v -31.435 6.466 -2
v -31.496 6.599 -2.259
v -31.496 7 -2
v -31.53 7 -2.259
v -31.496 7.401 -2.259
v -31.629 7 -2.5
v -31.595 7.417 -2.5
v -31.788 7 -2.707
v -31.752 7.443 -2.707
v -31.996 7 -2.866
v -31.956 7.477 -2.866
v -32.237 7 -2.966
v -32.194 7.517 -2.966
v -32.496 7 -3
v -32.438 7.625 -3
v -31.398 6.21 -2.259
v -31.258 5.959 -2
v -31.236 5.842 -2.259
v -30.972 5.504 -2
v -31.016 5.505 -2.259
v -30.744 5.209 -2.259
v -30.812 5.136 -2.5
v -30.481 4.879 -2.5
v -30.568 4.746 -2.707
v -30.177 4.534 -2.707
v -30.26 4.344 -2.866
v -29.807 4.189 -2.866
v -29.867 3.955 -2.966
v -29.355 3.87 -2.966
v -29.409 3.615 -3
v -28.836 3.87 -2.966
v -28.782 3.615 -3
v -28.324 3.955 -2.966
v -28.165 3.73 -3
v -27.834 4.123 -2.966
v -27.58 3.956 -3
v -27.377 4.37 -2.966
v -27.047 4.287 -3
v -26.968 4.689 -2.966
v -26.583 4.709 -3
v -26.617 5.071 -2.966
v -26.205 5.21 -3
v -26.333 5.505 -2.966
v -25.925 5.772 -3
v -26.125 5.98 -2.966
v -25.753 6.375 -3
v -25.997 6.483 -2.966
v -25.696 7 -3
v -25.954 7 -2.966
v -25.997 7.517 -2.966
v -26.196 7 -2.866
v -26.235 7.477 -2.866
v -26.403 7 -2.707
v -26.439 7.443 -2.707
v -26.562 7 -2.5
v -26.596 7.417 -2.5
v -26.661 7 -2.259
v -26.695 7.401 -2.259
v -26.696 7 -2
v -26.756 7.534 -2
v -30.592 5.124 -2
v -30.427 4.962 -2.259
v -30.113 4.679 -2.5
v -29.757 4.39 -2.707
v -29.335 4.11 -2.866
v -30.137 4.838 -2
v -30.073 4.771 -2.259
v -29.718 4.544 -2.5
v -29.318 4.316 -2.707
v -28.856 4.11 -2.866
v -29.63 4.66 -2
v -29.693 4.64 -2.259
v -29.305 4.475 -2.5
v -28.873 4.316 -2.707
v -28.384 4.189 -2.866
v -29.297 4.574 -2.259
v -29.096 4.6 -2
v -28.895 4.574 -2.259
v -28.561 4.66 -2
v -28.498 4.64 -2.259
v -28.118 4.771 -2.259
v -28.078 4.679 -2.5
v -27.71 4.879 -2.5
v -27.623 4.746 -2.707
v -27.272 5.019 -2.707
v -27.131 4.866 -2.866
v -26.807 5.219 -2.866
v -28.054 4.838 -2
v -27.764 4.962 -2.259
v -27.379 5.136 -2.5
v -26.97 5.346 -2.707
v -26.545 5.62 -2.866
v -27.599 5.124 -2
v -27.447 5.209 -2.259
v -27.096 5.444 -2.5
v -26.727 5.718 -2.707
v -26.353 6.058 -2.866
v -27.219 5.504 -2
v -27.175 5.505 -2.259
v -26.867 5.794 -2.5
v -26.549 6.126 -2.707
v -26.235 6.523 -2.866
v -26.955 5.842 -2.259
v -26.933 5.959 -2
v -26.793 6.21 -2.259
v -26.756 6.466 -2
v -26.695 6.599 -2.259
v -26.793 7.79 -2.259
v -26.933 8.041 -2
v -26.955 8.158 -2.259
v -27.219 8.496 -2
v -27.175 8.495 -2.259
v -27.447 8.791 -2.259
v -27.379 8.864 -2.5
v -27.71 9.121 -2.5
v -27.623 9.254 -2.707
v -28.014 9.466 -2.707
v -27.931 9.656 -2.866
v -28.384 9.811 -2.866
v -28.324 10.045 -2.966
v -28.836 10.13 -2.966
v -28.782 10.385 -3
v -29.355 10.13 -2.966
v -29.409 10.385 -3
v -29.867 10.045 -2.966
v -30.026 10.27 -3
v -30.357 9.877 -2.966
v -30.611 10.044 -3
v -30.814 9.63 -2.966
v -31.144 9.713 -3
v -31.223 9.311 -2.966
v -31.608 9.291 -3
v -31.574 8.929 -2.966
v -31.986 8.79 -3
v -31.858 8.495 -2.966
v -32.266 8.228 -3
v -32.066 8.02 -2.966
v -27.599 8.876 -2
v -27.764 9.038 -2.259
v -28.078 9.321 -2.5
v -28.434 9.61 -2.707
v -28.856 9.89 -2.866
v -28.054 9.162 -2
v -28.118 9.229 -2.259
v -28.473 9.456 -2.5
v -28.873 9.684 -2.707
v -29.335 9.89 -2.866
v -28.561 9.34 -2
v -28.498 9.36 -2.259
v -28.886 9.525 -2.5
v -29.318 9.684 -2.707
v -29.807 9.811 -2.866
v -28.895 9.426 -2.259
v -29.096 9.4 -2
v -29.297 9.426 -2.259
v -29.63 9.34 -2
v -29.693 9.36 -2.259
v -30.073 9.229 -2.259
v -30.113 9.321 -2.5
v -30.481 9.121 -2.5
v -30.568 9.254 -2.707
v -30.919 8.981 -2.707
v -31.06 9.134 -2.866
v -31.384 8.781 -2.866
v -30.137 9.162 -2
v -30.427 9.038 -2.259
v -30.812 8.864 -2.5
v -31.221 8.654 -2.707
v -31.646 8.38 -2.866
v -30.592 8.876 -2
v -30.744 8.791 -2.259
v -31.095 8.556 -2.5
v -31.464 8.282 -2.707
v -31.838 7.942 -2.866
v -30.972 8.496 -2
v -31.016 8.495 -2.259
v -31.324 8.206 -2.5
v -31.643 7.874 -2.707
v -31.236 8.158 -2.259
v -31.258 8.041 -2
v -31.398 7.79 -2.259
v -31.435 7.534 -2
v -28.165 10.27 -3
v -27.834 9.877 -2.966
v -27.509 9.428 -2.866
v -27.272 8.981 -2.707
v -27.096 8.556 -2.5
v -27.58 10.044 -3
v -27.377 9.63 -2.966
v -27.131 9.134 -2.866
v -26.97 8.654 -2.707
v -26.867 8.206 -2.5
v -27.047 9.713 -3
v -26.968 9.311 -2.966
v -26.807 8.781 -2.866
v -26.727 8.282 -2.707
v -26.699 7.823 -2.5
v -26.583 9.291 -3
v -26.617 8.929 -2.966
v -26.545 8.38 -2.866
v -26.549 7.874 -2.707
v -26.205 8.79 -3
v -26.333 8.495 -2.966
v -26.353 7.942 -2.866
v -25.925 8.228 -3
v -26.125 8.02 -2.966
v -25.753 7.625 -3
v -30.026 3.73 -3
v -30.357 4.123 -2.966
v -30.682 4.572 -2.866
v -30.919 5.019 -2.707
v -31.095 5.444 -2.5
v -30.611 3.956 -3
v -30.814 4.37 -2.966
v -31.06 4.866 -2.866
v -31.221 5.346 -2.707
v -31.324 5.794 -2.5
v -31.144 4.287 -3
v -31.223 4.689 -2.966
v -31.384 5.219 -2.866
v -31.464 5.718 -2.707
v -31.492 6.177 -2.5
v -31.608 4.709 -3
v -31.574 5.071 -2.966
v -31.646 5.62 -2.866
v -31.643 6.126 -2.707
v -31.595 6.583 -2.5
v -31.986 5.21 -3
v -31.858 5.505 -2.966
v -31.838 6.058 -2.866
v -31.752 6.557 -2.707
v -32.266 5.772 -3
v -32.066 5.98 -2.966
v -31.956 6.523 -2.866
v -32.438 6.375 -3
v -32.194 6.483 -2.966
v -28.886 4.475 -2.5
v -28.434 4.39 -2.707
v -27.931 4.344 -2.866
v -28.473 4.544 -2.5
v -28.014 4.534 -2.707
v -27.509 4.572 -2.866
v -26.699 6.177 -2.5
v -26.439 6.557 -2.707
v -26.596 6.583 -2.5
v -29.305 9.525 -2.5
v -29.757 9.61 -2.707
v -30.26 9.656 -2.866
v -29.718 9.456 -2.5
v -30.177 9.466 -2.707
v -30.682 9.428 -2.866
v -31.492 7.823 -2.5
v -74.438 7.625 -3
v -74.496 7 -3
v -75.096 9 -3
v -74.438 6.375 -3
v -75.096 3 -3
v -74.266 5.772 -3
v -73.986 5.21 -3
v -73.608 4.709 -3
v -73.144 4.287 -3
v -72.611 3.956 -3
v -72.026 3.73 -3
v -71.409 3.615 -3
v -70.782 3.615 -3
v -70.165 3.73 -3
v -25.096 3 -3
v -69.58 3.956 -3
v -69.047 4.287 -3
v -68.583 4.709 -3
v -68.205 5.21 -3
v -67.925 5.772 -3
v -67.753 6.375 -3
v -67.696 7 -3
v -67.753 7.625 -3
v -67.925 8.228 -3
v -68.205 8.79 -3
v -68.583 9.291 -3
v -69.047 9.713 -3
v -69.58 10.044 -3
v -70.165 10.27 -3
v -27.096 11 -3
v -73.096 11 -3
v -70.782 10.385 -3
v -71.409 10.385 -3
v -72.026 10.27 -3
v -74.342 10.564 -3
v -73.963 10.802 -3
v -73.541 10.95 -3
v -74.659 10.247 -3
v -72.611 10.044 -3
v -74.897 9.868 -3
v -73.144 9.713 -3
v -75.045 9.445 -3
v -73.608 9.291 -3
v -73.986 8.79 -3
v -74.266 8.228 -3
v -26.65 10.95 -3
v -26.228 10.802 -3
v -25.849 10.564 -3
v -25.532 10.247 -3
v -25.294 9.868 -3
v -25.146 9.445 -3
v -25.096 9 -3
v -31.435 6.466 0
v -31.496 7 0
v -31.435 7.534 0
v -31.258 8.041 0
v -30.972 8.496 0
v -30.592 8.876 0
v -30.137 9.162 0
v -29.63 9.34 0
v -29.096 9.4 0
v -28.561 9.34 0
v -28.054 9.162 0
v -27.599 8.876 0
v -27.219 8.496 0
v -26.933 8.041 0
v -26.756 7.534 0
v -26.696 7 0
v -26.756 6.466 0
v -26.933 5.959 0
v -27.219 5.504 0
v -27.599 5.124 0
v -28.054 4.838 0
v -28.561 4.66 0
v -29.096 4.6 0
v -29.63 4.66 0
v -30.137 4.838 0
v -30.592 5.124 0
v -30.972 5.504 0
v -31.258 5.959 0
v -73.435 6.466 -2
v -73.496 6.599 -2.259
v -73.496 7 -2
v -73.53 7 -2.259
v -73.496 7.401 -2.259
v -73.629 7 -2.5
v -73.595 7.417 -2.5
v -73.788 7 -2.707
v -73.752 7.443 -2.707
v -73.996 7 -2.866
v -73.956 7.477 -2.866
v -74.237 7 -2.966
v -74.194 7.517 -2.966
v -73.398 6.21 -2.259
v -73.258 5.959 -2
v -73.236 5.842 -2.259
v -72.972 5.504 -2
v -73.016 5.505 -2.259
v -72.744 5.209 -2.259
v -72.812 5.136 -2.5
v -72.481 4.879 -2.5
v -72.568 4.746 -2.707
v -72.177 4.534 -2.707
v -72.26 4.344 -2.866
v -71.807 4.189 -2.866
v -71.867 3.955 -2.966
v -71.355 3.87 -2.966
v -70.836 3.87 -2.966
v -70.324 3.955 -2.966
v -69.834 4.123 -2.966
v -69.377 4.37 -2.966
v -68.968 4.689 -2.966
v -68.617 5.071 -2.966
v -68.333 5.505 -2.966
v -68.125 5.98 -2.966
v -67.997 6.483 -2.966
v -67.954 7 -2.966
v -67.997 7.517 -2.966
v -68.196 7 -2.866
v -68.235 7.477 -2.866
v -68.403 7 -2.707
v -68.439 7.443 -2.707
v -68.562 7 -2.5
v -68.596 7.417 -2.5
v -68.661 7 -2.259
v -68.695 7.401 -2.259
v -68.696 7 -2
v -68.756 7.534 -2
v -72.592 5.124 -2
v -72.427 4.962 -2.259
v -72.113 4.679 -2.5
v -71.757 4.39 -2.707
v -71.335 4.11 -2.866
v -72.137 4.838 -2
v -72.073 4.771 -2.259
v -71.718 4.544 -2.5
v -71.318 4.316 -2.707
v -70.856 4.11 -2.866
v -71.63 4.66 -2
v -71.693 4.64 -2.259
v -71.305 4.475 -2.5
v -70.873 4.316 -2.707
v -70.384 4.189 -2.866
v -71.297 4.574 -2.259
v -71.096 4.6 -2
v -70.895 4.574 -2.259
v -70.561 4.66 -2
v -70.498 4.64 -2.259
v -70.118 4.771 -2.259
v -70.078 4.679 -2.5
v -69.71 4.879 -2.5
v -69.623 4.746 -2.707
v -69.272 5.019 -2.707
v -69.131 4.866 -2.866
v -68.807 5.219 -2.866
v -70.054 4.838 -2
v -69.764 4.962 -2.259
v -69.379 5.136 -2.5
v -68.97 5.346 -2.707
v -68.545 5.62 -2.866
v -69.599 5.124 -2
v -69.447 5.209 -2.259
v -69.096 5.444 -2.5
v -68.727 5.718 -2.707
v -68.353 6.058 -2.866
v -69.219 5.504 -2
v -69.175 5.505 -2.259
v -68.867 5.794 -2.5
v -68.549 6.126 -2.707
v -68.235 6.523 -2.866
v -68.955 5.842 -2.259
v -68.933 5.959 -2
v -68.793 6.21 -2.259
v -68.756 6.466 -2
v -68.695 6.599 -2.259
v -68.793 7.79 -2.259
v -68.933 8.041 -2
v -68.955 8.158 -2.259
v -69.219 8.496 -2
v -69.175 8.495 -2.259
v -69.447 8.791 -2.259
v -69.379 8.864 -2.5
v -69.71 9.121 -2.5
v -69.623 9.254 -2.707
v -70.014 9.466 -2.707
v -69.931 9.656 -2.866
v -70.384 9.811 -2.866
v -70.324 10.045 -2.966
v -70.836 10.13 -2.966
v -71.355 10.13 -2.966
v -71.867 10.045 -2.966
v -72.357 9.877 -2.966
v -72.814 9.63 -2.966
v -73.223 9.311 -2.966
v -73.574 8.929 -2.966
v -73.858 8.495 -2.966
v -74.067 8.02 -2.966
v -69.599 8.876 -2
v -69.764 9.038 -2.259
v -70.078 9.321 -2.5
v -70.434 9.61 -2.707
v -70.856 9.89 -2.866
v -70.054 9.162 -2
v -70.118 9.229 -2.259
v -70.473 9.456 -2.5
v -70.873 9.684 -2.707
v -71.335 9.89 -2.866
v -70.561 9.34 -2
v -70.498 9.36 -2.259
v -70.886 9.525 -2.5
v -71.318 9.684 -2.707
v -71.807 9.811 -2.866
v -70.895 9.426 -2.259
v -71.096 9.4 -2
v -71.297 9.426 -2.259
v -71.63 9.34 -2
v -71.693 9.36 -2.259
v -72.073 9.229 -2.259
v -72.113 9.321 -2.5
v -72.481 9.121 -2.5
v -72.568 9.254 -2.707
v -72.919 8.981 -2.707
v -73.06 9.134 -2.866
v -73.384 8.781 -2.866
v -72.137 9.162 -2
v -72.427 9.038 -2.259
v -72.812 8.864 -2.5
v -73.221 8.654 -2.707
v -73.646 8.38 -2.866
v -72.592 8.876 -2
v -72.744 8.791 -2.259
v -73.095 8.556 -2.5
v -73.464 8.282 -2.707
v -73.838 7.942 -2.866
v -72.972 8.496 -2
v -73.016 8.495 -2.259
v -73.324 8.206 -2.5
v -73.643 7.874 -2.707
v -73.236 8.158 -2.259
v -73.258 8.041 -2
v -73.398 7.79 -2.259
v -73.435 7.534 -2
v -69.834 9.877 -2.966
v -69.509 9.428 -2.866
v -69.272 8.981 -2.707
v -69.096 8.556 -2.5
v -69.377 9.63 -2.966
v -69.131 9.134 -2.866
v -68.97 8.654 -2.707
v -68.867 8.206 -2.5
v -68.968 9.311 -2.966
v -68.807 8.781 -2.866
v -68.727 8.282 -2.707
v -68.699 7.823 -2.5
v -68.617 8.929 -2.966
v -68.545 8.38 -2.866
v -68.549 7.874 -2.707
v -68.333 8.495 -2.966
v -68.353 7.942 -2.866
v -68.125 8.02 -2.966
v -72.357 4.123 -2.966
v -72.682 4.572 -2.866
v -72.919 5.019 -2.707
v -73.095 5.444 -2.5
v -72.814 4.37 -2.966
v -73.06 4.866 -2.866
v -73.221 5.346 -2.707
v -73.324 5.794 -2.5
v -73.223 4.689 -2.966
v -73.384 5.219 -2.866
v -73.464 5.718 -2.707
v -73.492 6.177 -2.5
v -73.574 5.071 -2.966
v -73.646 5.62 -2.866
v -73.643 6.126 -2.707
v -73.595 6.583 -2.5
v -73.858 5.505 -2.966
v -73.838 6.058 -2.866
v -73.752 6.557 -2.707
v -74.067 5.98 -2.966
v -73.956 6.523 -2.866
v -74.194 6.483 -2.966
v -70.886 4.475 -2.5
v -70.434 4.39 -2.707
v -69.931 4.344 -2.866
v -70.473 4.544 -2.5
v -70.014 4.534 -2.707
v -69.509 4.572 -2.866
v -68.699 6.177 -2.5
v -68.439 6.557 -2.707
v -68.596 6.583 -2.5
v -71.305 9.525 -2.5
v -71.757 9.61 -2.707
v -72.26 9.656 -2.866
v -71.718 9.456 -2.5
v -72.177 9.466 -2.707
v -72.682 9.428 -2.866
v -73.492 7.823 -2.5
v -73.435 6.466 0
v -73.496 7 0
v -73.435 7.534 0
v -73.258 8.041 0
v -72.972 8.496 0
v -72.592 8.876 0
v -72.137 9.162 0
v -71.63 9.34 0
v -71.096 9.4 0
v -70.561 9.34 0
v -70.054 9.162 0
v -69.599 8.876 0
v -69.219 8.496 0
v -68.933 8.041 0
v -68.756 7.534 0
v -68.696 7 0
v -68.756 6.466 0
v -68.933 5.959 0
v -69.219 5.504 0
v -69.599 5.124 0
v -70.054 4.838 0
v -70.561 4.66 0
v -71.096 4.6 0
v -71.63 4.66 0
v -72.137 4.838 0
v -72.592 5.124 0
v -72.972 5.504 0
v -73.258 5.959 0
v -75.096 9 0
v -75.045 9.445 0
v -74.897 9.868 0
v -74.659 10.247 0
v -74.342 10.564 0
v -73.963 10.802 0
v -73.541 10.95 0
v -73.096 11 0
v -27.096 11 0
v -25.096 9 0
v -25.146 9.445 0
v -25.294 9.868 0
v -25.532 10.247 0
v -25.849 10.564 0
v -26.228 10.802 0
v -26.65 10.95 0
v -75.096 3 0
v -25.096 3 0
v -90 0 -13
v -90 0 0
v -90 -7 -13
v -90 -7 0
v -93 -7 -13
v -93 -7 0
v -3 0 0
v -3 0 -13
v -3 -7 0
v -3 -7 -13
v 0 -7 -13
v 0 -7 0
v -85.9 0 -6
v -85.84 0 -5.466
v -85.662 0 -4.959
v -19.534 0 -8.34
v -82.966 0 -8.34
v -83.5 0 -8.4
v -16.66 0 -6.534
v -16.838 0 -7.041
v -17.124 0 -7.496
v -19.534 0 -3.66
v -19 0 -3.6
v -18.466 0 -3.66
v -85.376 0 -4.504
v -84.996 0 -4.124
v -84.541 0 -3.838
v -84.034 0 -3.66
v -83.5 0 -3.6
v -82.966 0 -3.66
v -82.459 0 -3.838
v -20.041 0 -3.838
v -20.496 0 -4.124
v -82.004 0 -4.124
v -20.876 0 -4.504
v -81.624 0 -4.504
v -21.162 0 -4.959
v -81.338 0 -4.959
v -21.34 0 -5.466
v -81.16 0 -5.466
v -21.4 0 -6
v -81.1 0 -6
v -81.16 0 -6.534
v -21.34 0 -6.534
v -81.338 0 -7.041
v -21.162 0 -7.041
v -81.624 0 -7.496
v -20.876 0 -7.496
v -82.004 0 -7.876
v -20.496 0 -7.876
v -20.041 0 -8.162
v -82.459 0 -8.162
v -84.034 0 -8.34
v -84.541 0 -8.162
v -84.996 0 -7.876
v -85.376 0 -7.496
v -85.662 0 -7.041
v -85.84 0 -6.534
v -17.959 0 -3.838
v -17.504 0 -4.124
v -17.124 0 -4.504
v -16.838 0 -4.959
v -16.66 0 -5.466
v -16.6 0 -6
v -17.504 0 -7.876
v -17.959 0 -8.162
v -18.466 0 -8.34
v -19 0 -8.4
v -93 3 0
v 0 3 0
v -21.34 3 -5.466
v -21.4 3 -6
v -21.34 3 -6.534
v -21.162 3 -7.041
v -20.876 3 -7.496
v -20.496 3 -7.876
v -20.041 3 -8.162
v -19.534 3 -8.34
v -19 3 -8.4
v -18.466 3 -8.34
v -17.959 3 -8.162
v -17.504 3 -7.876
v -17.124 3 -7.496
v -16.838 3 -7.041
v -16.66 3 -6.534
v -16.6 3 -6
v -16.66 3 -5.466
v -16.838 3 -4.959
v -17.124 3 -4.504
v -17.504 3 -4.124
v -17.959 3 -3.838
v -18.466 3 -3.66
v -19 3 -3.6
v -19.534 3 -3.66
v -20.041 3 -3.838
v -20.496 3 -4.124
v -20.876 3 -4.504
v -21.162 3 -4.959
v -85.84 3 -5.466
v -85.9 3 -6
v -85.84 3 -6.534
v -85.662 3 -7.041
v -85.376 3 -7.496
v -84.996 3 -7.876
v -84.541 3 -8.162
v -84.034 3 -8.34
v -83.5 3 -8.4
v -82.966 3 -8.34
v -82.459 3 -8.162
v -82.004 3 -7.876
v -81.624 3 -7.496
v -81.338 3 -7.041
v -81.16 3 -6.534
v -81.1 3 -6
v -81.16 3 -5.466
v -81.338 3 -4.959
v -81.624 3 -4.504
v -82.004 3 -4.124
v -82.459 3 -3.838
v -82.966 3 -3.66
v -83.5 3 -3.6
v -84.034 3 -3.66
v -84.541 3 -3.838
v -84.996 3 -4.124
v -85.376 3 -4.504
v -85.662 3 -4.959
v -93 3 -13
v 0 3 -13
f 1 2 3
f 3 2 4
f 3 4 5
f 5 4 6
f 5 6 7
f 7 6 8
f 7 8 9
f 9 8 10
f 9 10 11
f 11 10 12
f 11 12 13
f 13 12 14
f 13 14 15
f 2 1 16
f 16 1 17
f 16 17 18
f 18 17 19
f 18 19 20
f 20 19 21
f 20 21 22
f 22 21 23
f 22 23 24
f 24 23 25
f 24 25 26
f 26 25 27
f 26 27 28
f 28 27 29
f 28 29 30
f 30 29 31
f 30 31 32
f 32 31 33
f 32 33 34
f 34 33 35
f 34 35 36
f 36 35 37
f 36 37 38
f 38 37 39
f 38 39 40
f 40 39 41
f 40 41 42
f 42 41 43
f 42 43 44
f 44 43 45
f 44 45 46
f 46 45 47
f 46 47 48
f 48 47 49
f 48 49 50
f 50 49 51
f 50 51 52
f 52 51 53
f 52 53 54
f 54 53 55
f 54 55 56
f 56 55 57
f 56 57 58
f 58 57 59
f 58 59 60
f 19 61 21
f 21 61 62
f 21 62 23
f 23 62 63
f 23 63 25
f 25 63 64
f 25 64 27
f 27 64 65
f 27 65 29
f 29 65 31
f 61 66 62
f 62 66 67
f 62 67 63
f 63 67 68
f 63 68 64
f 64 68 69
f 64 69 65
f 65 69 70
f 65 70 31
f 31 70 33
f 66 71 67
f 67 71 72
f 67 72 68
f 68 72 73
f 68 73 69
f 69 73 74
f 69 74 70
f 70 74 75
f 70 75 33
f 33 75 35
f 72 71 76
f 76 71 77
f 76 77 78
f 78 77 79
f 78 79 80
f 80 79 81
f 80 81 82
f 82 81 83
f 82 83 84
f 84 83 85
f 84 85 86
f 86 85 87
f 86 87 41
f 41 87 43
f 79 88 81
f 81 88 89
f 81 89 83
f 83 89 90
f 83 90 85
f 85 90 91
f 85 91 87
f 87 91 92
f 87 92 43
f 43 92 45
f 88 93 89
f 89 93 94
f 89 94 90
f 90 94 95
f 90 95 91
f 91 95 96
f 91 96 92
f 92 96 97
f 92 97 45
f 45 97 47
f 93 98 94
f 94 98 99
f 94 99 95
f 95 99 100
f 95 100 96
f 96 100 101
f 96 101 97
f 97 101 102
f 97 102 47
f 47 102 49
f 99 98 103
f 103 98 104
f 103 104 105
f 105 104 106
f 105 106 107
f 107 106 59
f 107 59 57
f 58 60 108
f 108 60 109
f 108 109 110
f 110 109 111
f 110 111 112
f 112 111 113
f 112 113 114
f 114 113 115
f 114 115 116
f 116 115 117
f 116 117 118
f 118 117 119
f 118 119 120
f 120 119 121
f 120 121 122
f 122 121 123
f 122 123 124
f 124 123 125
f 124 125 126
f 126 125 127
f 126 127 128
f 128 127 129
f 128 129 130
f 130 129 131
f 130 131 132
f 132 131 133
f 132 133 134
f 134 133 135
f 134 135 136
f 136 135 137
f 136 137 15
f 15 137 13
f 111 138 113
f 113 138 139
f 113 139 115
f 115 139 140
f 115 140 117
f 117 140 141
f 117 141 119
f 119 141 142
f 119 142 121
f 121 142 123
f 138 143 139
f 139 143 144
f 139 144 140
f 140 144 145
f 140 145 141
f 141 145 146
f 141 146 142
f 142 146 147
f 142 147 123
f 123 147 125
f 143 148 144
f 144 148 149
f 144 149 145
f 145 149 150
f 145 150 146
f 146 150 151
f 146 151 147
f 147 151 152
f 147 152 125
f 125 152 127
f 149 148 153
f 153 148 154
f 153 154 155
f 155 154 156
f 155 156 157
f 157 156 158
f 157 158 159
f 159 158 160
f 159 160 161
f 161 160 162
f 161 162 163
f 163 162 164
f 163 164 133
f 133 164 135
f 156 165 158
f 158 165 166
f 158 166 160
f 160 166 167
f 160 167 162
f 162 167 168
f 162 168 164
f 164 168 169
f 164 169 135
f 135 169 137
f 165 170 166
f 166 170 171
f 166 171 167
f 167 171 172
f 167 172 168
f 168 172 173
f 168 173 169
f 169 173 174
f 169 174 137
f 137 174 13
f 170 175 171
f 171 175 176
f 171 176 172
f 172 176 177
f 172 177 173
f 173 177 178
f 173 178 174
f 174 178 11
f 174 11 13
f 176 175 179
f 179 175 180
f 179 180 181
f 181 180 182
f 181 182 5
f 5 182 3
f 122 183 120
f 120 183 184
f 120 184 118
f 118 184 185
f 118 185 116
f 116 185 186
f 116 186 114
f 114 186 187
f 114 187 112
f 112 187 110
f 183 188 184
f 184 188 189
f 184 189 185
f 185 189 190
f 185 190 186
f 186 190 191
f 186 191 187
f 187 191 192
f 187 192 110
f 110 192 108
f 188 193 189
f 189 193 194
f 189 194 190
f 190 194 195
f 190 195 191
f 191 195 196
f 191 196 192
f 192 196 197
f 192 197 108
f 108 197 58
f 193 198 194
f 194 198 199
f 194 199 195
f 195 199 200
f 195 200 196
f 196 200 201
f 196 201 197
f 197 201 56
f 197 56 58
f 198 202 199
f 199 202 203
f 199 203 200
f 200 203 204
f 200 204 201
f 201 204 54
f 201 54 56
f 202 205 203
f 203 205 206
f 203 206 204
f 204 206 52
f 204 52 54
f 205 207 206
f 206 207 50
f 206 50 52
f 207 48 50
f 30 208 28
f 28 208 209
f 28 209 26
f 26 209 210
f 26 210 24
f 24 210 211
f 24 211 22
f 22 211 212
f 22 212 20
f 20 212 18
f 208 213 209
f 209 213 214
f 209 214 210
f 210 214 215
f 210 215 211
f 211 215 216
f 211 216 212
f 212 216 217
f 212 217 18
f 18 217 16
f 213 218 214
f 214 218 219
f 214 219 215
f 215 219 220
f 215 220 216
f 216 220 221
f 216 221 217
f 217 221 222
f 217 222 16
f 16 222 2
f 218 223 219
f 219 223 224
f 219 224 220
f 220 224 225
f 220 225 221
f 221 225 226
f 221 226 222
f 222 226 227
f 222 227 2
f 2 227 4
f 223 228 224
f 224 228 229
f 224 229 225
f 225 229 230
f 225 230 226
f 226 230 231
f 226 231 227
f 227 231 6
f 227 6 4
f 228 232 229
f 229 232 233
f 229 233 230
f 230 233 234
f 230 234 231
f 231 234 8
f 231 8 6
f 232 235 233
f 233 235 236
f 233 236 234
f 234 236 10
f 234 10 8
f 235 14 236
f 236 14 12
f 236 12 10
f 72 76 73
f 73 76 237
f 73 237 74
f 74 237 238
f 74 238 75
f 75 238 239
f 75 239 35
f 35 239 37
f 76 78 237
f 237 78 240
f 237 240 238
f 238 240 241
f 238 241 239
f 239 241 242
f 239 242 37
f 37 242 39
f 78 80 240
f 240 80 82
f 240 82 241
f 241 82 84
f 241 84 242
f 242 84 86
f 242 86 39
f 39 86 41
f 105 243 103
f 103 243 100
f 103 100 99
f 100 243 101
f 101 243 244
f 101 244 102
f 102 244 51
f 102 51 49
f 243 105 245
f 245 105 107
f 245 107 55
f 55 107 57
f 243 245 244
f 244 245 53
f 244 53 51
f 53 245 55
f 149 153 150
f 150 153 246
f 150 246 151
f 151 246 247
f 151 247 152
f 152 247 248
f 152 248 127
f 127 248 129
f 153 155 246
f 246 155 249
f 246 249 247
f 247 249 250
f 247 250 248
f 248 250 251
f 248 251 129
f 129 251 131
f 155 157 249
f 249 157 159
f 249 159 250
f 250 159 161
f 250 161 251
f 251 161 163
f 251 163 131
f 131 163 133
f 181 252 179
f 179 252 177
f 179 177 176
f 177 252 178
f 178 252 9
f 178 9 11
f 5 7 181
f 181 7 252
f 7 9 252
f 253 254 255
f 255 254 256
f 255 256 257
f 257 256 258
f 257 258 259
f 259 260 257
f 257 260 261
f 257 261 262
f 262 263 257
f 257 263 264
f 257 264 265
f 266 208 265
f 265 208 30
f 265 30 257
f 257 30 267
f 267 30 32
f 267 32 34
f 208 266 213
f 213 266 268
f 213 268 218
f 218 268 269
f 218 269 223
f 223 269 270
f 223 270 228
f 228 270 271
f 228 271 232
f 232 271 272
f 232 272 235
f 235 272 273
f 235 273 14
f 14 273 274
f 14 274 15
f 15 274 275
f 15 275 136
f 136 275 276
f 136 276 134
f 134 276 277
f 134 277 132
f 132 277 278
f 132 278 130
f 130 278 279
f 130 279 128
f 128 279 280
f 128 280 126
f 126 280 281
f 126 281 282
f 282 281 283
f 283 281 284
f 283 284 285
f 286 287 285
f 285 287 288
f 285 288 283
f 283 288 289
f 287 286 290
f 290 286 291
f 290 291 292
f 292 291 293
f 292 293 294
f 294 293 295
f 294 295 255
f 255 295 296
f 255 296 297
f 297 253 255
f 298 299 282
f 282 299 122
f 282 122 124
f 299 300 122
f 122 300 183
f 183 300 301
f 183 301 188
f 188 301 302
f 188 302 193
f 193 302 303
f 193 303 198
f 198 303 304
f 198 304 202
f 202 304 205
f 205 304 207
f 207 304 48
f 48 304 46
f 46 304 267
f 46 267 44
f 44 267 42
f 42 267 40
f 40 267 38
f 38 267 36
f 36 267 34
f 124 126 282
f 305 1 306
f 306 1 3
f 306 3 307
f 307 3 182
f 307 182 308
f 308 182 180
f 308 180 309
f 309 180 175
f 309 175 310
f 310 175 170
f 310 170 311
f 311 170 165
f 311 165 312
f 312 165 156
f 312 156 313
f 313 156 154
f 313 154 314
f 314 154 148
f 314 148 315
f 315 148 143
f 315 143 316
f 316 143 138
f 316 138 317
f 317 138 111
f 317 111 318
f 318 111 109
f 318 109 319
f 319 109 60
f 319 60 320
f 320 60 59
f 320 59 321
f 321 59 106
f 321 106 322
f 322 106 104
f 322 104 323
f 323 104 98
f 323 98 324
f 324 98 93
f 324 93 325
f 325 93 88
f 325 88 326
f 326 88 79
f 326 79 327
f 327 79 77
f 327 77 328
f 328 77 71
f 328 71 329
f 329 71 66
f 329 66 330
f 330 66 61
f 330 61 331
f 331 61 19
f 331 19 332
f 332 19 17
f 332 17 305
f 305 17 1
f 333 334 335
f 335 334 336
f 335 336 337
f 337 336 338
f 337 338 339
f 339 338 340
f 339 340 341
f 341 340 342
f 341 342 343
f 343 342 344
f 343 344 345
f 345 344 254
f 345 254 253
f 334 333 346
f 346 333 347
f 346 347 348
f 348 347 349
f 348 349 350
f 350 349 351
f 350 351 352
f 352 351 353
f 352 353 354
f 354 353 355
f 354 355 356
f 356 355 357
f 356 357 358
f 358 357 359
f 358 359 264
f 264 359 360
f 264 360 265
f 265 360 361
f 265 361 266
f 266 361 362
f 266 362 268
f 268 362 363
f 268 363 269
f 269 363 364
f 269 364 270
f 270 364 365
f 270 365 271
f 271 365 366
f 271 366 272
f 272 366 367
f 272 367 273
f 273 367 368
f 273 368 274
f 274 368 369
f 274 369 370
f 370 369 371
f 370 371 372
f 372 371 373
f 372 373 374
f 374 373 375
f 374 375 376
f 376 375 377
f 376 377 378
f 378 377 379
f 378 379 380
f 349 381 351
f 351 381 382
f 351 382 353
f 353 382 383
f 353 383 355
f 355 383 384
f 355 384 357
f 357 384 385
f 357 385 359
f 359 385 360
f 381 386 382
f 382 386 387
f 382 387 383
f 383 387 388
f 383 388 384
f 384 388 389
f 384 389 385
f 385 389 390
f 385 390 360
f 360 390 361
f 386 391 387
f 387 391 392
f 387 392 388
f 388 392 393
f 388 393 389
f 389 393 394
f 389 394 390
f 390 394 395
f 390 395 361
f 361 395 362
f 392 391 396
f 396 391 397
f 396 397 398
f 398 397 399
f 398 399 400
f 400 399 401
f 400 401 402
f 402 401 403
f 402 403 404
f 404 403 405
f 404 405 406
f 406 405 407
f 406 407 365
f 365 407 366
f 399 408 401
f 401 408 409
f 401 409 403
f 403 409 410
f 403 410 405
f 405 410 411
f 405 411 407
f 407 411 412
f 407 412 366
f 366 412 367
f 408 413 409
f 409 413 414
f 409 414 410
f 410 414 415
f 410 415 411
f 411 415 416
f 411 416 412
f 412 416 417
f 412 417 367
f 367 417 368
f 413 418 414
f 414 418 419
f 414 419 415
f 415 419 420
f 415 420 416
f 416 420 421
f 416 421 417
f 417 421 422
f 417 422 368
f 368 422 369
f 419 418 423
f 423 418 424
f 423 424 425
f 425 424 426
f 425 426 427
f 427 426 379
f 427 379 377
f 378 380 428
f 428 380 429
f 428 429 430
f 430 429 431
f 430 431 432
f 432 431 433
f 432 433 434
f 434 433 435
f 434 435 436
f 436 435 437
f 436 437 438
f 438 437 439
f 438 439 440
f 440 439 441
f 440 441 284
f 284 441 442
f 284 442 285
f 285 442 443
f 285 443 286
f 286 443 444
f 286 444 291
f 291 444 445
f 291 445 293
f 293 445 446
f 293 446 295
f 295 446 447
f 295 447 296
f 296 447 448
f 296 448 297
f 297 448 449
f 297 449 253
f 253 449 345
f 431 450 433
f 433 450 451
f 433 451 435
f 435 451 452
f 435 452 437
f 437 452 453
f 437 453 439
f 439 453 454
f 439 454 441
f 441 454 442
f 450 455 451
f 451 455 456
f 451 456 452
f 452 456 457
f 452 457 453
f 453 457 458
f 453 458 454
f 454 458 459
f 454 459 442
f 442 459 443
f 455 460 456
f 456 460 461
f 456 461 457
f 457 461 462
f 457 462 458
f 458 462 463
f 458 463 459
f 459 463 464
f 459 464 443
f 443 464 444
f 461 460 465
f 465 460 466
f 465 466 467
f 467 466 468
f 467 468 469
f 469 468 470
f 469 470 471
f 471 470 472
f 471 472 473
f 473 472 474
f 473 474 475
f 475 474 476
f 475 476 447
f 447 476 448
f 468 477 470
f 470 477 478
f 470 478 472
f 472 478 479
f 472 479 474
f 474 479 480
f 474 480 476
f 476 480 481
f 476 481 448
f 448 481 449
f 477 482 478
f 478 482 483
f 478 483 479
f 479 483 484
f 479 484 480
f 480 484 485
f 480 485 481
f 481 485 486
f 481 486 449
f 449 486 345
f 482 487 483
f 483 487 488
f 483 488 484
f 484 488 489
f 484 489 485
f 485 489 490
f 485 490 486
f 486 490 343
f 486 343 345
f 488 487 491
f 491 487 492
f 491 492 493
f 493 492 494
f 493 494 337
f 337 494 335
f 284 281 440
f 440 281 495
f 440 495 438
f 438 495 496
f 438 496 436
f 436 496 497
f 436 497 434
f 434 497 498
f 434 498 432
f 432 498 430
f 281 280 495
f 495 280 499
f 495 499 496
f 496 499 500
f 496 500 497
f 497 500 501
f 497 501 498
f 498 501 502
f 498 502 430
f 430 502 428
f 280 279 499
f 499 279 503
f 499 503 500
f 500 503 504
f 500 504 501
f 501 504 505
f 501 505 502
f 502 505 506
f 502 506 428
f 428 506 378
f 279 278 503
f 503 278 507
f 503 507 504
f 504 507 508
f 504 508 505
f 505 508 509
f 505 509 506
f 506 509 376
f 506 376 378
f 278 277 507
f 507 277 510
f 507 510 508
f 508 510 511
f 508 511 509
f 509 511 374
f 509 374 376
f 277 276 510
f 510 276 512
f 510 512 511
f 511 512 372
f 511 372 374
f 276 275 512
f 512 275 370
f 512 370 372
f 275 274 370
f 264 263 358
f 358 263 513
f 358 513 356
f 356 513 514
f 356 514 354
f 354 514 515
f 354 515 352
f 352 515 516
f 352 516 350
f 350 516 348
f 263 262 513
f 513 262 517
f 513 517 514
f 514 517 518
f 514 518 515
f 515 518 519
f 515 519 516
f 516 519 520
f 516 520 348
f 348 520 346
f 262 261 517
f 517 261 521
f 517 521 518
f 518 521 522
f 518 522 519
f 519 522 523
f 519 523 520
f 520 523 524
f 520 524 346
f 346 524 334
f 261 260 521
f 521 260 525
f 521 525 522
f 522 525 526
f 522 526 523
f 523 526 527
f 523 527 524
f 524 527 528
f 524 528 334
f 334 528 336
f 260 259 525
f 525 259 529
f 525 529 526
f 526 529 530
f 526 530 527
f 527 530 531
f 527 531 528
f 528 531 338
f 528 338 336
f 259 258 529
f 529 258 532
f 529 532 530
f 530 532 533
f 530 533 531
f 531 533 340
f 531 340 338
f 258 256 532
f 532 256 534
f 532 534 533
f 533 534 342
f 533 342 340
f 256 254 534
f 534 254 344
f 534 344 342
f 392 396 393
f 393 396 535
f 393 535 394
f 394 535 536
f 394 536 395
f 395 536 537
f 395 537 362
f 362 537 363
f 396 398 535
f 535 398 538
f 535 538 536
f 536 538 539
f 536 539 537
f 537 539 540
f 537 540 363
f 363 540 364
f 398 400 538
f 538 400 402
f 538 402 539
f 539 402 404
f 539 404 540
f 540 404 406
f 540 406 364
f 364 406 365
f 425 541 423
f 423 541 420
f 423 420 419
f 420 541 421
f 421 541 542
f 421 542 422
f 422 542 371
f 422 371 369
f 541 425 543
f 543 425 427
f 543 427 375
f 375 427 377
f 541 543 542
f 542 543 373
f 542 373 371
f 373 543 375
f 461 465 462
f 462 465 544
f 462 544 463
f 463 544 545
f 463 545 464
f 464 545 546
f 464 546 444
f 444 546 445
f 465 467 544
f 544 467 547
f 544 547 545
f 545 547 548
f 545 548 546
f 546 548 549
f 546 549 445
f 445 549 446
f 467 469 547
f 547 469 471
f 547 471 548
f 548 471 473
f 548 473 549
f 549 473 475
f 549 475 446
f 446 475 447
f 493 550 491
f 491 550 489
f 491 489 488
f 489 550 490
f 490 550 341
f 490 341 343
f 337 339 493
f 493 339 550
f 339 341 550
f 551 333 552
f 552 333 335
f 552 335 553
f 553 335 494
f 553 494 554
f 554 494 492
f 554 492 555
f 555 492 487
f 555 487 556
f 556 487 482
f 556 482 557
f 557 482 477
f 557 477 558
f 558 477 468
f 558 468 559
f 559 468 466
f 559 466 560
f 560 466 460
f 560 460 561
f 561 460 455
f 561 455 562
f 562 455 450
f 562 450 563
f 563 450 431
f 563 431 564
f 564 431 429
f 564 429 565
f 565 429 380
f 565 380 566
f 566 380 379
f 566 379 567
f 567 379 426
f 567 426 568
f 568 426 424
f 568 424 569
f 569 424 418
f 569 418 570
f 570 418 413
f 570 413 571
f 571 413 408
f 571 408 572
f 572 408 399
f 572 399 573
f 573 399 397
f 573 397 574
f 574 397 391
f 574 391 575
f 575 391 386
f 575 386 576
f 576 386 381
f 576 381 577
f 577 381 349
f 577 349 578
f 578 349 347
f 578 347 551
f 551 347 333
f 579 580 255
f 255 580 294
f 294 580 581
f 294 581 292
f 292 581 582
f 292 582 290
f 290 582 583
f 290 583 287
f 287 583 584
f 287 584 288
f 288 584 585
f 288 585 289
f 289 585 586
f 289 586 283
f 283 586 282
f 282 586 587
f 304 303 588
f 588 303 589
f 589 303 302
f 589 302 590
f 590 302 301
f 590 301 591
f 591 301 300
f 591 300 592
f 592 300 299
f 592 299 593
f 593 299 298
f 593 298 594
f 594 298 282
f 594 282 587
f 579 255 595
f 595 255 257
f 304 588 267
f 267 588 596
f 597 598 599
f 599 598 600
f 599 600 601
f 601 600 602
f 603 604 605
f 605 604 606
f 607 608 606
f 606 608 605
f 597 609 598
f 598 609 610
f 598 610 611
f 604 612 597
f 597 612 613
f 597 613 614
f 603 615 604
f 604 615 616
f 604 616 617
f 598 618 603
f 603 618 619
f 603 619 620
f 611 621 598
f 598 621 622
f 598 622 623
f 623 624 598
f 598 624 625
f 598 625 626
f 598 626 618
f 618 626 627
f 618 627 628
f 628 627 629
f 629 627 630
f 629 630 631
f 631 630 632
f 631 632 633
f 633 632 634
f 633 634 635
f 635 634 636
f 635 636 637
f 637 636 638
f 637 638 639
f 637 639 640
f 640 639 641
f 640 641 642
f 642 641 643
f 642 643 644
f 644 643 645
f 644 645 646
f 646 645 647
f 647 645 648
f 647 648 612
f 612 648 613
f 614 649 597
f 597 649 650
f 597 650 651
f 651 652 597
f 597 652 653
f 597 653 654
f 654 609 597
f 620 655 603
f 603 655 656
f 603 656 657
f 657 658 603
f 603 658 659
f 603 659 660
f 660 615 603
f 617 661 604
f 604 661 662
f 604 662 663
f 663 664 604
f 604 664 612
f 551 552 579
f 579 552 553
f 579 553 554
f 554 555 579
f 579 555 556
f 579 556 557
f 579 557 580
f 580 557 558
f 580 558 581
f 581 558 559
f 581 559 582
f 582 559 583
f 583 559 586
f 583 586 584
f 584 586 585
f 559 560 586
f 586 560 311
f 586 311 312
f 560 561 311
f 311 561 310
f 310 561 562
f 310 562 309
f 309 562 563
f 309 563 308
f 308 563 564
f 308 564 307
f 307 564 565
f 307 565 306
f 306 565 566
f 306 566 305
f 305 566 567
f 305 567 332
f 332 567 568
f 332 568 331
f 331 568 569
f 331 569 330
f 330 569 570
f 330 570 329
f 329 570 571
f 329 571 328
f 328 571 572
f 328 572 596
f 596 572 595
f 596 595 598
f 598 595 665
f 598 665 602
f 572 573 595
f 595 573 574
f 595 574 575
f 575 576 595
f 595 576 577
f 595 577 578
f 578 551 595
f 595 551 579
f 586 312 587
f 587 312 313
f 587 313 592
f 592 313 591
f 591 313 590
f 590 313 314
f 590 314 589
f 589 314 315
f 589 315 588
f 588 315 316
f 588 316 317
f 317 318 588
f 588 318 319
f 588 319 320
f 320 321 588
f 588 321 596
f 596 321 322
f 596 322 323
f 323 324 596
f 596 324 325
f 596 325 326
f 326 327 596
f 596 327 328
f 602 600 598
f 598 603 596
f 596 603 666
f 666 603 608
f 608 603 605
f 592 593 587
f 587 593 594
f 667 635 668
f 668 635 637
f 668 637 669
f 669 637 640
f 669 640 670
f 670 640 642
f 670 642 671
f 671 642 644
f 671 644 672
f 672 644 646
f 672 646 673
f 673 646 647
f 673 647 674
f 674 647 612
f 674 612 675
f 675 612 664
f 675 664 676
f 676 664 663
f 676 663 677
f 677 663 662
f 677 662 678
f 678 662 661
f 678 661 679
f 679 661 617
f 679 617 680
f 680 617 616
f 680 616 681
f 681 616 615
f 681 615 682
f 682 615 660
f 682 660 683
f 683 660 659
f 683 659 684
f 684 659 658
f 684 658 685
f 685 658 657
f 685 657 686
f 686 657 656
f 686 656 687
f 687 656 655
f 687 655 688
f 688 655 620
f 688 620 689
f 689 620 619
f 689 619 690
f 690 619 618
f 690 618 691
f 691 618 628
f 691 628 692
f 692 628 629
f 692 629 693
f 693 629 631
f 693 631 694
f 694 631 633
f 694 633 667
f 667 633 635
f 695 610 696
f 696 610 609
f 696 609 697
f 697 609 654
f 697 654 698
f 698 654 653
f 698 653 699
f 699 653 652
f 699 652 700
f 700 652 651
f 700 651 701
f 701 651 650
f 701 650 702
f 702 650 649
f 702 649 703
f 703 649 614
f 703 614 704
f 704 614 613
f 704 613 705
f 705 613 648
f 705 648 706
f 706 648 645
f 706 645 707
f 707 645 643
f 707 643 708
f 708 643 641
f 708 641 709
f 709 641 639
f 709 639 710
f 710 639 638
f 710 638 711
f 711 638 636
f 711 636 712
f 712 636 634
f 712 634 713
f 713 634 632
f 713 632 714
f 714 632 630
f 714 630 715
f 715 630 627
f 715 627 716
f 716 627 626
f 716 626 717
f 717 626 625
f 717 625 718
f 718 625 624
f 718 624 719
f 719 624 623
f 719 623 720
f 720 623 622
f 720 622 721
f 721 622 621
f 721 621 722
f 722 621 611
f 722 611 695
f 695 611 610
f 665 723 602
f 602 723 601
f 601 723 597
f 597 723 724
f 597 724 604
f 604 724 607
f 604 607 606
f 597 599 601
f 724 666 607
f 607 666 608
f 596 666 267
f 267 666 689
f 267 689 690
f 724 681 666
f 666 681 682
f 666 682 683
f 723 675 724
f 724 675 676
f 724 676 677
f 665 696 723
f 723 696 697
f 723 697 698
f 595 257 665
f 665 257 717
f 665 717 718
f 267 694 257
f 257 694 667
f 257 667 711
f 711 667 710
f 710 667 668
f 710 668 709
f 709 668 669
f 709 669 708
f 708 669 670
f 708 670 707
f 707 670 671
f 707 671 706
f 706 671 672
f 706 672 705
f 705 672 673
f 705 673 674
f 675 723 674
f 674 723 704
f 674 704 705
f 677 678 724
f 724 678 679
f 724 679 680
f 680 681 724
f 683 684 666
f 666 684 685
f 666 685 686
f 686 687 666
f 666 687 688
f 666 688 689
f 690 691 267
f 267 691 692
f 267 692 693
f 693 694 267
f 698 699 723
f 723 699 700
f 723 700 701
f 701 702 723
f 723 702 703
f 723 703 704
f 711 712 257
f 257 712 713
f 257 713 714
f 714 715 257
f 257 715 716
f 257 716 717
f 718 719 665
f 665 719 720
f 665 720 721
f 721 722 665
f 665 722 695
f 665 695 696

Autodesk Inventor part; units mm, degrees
ref_plane "YZ Plane" through (0, 0, 0) normal (1, 0, 0) x (0, 1, 0)
ref_plane "XZ Plane" through (0, 0, 0) normal (0, 1, 0) x (-1, 0, 0)
ref_plane "XY Plane" through (0, 0, 0) normal (0, 0, 1) x (1, 0, 0)
sketch "Sketch1" plane through (0, 0, 0) normal (0, 1, 0) x (-1, 0, 0)
  line L0 (0, 0) -> (93, 0)
  line L1 (93, 0) -> (93, -13)
  line L2 (93, -13) -> (0, -13)
  line L3 (0, -13) -> (0, 0)
  circle A0 centre (83.5, -6) radius 2.4
  circle A1 centre (19, -6) radius 2.4
  dimension "d0" = 93
  dimension "d1" = 13
  dimension "d2" = 4.8
  dimension "d3" = 4.8
  dimension "d4" = 6
  dimension "d5" = 6
  dimension "d6" = 19
  dimension "d7" = 9.5
extrude "Extrusion1" add sketch "Sketch1" along normal blind 3
sketch "Sketch2" plane through (0, 3, 0) normal (0, 1, 0) x (1, 0, 0)
  line L0 (-93, 0) -> (0, 0) projected
  line L1 (0, 13) -> (-93, 13) projected
  line L2 (0, 0) -> (-3, 0)
  line L3 (-3, 0) -> (-3, 13)
  line L4 (-3, 13) -> (0, 13)
  line L5 (0, 13) -> (0, 0)
  line L6 (-93, 0) -> (-90, 0)
  line L7 (-90, 0) -> (-90, 13)
  line L8 (-90, 13) -> (-93, 13)
  line L9 (-93, 13) -> (-93, 0)
  dimension "d10" = 3
  dimension "d11" = 3
extrude "Extrusion2" add sketch "Sketch2" against normal blind 10 contours L9 L1 L7 L0 | L3 L1 L5 L0
sketch "Sketch3" plane through (0, 3, 0) normal (0, 1, 0) x (1, 0, 0)
  line L0 (-3, 0) -> (-90, 0) projected
  line L1 (-75.0955, 0) -> (-25.0955, 0)
  line L2 (-25.0955, 0) -> (-25.0955, 3)
  line L3 (-25.0955, 3) -> (-75.0955, 3)
  line L4 (-75.0955, 3) -> (-75.0955, 0)
  point P0 (0, 0)
  dimension "d14" = 50
  dimension "d15" = 3
extrude "Extrusion3" add sketch "Sketch3" along normal blind 8
fillet "Fillet1" radius 2 2 edges at (-25.0955, 11, -1.5) (-75.0955, 11, -1.5)
sketch "Sketch4" plane through (-25.0955, 3, -3) normal (0, 0, -1) x (-1, 0, 0)
  circle A0 centre (46, 4) radius 2.4
  circle A1 centre (4, 4) radius 2.4
  line L0 (2, 8) -> (48, 8) projected
  line L1 (0, 0) -> (0, 6) projected
  line L2 (50, 0) -> (50, 6) projected
  point P0 (-25.0955, -3)
  dimension "d19" = 4.8
  dimension "d20" = 4.8
  dimension "d21" = 4
  dimension "d22" = 4
  dimension "d23" = 4
  dimension "d24" = 4
extrude "Extrusion4" cut sketch "Sketch4" against normal blind 8
fillet "Fillet2" radius 1 2 edges at (-68.6955, 7, -3) (-26.6955, 7, -3)
properties part number "PSUMount"
